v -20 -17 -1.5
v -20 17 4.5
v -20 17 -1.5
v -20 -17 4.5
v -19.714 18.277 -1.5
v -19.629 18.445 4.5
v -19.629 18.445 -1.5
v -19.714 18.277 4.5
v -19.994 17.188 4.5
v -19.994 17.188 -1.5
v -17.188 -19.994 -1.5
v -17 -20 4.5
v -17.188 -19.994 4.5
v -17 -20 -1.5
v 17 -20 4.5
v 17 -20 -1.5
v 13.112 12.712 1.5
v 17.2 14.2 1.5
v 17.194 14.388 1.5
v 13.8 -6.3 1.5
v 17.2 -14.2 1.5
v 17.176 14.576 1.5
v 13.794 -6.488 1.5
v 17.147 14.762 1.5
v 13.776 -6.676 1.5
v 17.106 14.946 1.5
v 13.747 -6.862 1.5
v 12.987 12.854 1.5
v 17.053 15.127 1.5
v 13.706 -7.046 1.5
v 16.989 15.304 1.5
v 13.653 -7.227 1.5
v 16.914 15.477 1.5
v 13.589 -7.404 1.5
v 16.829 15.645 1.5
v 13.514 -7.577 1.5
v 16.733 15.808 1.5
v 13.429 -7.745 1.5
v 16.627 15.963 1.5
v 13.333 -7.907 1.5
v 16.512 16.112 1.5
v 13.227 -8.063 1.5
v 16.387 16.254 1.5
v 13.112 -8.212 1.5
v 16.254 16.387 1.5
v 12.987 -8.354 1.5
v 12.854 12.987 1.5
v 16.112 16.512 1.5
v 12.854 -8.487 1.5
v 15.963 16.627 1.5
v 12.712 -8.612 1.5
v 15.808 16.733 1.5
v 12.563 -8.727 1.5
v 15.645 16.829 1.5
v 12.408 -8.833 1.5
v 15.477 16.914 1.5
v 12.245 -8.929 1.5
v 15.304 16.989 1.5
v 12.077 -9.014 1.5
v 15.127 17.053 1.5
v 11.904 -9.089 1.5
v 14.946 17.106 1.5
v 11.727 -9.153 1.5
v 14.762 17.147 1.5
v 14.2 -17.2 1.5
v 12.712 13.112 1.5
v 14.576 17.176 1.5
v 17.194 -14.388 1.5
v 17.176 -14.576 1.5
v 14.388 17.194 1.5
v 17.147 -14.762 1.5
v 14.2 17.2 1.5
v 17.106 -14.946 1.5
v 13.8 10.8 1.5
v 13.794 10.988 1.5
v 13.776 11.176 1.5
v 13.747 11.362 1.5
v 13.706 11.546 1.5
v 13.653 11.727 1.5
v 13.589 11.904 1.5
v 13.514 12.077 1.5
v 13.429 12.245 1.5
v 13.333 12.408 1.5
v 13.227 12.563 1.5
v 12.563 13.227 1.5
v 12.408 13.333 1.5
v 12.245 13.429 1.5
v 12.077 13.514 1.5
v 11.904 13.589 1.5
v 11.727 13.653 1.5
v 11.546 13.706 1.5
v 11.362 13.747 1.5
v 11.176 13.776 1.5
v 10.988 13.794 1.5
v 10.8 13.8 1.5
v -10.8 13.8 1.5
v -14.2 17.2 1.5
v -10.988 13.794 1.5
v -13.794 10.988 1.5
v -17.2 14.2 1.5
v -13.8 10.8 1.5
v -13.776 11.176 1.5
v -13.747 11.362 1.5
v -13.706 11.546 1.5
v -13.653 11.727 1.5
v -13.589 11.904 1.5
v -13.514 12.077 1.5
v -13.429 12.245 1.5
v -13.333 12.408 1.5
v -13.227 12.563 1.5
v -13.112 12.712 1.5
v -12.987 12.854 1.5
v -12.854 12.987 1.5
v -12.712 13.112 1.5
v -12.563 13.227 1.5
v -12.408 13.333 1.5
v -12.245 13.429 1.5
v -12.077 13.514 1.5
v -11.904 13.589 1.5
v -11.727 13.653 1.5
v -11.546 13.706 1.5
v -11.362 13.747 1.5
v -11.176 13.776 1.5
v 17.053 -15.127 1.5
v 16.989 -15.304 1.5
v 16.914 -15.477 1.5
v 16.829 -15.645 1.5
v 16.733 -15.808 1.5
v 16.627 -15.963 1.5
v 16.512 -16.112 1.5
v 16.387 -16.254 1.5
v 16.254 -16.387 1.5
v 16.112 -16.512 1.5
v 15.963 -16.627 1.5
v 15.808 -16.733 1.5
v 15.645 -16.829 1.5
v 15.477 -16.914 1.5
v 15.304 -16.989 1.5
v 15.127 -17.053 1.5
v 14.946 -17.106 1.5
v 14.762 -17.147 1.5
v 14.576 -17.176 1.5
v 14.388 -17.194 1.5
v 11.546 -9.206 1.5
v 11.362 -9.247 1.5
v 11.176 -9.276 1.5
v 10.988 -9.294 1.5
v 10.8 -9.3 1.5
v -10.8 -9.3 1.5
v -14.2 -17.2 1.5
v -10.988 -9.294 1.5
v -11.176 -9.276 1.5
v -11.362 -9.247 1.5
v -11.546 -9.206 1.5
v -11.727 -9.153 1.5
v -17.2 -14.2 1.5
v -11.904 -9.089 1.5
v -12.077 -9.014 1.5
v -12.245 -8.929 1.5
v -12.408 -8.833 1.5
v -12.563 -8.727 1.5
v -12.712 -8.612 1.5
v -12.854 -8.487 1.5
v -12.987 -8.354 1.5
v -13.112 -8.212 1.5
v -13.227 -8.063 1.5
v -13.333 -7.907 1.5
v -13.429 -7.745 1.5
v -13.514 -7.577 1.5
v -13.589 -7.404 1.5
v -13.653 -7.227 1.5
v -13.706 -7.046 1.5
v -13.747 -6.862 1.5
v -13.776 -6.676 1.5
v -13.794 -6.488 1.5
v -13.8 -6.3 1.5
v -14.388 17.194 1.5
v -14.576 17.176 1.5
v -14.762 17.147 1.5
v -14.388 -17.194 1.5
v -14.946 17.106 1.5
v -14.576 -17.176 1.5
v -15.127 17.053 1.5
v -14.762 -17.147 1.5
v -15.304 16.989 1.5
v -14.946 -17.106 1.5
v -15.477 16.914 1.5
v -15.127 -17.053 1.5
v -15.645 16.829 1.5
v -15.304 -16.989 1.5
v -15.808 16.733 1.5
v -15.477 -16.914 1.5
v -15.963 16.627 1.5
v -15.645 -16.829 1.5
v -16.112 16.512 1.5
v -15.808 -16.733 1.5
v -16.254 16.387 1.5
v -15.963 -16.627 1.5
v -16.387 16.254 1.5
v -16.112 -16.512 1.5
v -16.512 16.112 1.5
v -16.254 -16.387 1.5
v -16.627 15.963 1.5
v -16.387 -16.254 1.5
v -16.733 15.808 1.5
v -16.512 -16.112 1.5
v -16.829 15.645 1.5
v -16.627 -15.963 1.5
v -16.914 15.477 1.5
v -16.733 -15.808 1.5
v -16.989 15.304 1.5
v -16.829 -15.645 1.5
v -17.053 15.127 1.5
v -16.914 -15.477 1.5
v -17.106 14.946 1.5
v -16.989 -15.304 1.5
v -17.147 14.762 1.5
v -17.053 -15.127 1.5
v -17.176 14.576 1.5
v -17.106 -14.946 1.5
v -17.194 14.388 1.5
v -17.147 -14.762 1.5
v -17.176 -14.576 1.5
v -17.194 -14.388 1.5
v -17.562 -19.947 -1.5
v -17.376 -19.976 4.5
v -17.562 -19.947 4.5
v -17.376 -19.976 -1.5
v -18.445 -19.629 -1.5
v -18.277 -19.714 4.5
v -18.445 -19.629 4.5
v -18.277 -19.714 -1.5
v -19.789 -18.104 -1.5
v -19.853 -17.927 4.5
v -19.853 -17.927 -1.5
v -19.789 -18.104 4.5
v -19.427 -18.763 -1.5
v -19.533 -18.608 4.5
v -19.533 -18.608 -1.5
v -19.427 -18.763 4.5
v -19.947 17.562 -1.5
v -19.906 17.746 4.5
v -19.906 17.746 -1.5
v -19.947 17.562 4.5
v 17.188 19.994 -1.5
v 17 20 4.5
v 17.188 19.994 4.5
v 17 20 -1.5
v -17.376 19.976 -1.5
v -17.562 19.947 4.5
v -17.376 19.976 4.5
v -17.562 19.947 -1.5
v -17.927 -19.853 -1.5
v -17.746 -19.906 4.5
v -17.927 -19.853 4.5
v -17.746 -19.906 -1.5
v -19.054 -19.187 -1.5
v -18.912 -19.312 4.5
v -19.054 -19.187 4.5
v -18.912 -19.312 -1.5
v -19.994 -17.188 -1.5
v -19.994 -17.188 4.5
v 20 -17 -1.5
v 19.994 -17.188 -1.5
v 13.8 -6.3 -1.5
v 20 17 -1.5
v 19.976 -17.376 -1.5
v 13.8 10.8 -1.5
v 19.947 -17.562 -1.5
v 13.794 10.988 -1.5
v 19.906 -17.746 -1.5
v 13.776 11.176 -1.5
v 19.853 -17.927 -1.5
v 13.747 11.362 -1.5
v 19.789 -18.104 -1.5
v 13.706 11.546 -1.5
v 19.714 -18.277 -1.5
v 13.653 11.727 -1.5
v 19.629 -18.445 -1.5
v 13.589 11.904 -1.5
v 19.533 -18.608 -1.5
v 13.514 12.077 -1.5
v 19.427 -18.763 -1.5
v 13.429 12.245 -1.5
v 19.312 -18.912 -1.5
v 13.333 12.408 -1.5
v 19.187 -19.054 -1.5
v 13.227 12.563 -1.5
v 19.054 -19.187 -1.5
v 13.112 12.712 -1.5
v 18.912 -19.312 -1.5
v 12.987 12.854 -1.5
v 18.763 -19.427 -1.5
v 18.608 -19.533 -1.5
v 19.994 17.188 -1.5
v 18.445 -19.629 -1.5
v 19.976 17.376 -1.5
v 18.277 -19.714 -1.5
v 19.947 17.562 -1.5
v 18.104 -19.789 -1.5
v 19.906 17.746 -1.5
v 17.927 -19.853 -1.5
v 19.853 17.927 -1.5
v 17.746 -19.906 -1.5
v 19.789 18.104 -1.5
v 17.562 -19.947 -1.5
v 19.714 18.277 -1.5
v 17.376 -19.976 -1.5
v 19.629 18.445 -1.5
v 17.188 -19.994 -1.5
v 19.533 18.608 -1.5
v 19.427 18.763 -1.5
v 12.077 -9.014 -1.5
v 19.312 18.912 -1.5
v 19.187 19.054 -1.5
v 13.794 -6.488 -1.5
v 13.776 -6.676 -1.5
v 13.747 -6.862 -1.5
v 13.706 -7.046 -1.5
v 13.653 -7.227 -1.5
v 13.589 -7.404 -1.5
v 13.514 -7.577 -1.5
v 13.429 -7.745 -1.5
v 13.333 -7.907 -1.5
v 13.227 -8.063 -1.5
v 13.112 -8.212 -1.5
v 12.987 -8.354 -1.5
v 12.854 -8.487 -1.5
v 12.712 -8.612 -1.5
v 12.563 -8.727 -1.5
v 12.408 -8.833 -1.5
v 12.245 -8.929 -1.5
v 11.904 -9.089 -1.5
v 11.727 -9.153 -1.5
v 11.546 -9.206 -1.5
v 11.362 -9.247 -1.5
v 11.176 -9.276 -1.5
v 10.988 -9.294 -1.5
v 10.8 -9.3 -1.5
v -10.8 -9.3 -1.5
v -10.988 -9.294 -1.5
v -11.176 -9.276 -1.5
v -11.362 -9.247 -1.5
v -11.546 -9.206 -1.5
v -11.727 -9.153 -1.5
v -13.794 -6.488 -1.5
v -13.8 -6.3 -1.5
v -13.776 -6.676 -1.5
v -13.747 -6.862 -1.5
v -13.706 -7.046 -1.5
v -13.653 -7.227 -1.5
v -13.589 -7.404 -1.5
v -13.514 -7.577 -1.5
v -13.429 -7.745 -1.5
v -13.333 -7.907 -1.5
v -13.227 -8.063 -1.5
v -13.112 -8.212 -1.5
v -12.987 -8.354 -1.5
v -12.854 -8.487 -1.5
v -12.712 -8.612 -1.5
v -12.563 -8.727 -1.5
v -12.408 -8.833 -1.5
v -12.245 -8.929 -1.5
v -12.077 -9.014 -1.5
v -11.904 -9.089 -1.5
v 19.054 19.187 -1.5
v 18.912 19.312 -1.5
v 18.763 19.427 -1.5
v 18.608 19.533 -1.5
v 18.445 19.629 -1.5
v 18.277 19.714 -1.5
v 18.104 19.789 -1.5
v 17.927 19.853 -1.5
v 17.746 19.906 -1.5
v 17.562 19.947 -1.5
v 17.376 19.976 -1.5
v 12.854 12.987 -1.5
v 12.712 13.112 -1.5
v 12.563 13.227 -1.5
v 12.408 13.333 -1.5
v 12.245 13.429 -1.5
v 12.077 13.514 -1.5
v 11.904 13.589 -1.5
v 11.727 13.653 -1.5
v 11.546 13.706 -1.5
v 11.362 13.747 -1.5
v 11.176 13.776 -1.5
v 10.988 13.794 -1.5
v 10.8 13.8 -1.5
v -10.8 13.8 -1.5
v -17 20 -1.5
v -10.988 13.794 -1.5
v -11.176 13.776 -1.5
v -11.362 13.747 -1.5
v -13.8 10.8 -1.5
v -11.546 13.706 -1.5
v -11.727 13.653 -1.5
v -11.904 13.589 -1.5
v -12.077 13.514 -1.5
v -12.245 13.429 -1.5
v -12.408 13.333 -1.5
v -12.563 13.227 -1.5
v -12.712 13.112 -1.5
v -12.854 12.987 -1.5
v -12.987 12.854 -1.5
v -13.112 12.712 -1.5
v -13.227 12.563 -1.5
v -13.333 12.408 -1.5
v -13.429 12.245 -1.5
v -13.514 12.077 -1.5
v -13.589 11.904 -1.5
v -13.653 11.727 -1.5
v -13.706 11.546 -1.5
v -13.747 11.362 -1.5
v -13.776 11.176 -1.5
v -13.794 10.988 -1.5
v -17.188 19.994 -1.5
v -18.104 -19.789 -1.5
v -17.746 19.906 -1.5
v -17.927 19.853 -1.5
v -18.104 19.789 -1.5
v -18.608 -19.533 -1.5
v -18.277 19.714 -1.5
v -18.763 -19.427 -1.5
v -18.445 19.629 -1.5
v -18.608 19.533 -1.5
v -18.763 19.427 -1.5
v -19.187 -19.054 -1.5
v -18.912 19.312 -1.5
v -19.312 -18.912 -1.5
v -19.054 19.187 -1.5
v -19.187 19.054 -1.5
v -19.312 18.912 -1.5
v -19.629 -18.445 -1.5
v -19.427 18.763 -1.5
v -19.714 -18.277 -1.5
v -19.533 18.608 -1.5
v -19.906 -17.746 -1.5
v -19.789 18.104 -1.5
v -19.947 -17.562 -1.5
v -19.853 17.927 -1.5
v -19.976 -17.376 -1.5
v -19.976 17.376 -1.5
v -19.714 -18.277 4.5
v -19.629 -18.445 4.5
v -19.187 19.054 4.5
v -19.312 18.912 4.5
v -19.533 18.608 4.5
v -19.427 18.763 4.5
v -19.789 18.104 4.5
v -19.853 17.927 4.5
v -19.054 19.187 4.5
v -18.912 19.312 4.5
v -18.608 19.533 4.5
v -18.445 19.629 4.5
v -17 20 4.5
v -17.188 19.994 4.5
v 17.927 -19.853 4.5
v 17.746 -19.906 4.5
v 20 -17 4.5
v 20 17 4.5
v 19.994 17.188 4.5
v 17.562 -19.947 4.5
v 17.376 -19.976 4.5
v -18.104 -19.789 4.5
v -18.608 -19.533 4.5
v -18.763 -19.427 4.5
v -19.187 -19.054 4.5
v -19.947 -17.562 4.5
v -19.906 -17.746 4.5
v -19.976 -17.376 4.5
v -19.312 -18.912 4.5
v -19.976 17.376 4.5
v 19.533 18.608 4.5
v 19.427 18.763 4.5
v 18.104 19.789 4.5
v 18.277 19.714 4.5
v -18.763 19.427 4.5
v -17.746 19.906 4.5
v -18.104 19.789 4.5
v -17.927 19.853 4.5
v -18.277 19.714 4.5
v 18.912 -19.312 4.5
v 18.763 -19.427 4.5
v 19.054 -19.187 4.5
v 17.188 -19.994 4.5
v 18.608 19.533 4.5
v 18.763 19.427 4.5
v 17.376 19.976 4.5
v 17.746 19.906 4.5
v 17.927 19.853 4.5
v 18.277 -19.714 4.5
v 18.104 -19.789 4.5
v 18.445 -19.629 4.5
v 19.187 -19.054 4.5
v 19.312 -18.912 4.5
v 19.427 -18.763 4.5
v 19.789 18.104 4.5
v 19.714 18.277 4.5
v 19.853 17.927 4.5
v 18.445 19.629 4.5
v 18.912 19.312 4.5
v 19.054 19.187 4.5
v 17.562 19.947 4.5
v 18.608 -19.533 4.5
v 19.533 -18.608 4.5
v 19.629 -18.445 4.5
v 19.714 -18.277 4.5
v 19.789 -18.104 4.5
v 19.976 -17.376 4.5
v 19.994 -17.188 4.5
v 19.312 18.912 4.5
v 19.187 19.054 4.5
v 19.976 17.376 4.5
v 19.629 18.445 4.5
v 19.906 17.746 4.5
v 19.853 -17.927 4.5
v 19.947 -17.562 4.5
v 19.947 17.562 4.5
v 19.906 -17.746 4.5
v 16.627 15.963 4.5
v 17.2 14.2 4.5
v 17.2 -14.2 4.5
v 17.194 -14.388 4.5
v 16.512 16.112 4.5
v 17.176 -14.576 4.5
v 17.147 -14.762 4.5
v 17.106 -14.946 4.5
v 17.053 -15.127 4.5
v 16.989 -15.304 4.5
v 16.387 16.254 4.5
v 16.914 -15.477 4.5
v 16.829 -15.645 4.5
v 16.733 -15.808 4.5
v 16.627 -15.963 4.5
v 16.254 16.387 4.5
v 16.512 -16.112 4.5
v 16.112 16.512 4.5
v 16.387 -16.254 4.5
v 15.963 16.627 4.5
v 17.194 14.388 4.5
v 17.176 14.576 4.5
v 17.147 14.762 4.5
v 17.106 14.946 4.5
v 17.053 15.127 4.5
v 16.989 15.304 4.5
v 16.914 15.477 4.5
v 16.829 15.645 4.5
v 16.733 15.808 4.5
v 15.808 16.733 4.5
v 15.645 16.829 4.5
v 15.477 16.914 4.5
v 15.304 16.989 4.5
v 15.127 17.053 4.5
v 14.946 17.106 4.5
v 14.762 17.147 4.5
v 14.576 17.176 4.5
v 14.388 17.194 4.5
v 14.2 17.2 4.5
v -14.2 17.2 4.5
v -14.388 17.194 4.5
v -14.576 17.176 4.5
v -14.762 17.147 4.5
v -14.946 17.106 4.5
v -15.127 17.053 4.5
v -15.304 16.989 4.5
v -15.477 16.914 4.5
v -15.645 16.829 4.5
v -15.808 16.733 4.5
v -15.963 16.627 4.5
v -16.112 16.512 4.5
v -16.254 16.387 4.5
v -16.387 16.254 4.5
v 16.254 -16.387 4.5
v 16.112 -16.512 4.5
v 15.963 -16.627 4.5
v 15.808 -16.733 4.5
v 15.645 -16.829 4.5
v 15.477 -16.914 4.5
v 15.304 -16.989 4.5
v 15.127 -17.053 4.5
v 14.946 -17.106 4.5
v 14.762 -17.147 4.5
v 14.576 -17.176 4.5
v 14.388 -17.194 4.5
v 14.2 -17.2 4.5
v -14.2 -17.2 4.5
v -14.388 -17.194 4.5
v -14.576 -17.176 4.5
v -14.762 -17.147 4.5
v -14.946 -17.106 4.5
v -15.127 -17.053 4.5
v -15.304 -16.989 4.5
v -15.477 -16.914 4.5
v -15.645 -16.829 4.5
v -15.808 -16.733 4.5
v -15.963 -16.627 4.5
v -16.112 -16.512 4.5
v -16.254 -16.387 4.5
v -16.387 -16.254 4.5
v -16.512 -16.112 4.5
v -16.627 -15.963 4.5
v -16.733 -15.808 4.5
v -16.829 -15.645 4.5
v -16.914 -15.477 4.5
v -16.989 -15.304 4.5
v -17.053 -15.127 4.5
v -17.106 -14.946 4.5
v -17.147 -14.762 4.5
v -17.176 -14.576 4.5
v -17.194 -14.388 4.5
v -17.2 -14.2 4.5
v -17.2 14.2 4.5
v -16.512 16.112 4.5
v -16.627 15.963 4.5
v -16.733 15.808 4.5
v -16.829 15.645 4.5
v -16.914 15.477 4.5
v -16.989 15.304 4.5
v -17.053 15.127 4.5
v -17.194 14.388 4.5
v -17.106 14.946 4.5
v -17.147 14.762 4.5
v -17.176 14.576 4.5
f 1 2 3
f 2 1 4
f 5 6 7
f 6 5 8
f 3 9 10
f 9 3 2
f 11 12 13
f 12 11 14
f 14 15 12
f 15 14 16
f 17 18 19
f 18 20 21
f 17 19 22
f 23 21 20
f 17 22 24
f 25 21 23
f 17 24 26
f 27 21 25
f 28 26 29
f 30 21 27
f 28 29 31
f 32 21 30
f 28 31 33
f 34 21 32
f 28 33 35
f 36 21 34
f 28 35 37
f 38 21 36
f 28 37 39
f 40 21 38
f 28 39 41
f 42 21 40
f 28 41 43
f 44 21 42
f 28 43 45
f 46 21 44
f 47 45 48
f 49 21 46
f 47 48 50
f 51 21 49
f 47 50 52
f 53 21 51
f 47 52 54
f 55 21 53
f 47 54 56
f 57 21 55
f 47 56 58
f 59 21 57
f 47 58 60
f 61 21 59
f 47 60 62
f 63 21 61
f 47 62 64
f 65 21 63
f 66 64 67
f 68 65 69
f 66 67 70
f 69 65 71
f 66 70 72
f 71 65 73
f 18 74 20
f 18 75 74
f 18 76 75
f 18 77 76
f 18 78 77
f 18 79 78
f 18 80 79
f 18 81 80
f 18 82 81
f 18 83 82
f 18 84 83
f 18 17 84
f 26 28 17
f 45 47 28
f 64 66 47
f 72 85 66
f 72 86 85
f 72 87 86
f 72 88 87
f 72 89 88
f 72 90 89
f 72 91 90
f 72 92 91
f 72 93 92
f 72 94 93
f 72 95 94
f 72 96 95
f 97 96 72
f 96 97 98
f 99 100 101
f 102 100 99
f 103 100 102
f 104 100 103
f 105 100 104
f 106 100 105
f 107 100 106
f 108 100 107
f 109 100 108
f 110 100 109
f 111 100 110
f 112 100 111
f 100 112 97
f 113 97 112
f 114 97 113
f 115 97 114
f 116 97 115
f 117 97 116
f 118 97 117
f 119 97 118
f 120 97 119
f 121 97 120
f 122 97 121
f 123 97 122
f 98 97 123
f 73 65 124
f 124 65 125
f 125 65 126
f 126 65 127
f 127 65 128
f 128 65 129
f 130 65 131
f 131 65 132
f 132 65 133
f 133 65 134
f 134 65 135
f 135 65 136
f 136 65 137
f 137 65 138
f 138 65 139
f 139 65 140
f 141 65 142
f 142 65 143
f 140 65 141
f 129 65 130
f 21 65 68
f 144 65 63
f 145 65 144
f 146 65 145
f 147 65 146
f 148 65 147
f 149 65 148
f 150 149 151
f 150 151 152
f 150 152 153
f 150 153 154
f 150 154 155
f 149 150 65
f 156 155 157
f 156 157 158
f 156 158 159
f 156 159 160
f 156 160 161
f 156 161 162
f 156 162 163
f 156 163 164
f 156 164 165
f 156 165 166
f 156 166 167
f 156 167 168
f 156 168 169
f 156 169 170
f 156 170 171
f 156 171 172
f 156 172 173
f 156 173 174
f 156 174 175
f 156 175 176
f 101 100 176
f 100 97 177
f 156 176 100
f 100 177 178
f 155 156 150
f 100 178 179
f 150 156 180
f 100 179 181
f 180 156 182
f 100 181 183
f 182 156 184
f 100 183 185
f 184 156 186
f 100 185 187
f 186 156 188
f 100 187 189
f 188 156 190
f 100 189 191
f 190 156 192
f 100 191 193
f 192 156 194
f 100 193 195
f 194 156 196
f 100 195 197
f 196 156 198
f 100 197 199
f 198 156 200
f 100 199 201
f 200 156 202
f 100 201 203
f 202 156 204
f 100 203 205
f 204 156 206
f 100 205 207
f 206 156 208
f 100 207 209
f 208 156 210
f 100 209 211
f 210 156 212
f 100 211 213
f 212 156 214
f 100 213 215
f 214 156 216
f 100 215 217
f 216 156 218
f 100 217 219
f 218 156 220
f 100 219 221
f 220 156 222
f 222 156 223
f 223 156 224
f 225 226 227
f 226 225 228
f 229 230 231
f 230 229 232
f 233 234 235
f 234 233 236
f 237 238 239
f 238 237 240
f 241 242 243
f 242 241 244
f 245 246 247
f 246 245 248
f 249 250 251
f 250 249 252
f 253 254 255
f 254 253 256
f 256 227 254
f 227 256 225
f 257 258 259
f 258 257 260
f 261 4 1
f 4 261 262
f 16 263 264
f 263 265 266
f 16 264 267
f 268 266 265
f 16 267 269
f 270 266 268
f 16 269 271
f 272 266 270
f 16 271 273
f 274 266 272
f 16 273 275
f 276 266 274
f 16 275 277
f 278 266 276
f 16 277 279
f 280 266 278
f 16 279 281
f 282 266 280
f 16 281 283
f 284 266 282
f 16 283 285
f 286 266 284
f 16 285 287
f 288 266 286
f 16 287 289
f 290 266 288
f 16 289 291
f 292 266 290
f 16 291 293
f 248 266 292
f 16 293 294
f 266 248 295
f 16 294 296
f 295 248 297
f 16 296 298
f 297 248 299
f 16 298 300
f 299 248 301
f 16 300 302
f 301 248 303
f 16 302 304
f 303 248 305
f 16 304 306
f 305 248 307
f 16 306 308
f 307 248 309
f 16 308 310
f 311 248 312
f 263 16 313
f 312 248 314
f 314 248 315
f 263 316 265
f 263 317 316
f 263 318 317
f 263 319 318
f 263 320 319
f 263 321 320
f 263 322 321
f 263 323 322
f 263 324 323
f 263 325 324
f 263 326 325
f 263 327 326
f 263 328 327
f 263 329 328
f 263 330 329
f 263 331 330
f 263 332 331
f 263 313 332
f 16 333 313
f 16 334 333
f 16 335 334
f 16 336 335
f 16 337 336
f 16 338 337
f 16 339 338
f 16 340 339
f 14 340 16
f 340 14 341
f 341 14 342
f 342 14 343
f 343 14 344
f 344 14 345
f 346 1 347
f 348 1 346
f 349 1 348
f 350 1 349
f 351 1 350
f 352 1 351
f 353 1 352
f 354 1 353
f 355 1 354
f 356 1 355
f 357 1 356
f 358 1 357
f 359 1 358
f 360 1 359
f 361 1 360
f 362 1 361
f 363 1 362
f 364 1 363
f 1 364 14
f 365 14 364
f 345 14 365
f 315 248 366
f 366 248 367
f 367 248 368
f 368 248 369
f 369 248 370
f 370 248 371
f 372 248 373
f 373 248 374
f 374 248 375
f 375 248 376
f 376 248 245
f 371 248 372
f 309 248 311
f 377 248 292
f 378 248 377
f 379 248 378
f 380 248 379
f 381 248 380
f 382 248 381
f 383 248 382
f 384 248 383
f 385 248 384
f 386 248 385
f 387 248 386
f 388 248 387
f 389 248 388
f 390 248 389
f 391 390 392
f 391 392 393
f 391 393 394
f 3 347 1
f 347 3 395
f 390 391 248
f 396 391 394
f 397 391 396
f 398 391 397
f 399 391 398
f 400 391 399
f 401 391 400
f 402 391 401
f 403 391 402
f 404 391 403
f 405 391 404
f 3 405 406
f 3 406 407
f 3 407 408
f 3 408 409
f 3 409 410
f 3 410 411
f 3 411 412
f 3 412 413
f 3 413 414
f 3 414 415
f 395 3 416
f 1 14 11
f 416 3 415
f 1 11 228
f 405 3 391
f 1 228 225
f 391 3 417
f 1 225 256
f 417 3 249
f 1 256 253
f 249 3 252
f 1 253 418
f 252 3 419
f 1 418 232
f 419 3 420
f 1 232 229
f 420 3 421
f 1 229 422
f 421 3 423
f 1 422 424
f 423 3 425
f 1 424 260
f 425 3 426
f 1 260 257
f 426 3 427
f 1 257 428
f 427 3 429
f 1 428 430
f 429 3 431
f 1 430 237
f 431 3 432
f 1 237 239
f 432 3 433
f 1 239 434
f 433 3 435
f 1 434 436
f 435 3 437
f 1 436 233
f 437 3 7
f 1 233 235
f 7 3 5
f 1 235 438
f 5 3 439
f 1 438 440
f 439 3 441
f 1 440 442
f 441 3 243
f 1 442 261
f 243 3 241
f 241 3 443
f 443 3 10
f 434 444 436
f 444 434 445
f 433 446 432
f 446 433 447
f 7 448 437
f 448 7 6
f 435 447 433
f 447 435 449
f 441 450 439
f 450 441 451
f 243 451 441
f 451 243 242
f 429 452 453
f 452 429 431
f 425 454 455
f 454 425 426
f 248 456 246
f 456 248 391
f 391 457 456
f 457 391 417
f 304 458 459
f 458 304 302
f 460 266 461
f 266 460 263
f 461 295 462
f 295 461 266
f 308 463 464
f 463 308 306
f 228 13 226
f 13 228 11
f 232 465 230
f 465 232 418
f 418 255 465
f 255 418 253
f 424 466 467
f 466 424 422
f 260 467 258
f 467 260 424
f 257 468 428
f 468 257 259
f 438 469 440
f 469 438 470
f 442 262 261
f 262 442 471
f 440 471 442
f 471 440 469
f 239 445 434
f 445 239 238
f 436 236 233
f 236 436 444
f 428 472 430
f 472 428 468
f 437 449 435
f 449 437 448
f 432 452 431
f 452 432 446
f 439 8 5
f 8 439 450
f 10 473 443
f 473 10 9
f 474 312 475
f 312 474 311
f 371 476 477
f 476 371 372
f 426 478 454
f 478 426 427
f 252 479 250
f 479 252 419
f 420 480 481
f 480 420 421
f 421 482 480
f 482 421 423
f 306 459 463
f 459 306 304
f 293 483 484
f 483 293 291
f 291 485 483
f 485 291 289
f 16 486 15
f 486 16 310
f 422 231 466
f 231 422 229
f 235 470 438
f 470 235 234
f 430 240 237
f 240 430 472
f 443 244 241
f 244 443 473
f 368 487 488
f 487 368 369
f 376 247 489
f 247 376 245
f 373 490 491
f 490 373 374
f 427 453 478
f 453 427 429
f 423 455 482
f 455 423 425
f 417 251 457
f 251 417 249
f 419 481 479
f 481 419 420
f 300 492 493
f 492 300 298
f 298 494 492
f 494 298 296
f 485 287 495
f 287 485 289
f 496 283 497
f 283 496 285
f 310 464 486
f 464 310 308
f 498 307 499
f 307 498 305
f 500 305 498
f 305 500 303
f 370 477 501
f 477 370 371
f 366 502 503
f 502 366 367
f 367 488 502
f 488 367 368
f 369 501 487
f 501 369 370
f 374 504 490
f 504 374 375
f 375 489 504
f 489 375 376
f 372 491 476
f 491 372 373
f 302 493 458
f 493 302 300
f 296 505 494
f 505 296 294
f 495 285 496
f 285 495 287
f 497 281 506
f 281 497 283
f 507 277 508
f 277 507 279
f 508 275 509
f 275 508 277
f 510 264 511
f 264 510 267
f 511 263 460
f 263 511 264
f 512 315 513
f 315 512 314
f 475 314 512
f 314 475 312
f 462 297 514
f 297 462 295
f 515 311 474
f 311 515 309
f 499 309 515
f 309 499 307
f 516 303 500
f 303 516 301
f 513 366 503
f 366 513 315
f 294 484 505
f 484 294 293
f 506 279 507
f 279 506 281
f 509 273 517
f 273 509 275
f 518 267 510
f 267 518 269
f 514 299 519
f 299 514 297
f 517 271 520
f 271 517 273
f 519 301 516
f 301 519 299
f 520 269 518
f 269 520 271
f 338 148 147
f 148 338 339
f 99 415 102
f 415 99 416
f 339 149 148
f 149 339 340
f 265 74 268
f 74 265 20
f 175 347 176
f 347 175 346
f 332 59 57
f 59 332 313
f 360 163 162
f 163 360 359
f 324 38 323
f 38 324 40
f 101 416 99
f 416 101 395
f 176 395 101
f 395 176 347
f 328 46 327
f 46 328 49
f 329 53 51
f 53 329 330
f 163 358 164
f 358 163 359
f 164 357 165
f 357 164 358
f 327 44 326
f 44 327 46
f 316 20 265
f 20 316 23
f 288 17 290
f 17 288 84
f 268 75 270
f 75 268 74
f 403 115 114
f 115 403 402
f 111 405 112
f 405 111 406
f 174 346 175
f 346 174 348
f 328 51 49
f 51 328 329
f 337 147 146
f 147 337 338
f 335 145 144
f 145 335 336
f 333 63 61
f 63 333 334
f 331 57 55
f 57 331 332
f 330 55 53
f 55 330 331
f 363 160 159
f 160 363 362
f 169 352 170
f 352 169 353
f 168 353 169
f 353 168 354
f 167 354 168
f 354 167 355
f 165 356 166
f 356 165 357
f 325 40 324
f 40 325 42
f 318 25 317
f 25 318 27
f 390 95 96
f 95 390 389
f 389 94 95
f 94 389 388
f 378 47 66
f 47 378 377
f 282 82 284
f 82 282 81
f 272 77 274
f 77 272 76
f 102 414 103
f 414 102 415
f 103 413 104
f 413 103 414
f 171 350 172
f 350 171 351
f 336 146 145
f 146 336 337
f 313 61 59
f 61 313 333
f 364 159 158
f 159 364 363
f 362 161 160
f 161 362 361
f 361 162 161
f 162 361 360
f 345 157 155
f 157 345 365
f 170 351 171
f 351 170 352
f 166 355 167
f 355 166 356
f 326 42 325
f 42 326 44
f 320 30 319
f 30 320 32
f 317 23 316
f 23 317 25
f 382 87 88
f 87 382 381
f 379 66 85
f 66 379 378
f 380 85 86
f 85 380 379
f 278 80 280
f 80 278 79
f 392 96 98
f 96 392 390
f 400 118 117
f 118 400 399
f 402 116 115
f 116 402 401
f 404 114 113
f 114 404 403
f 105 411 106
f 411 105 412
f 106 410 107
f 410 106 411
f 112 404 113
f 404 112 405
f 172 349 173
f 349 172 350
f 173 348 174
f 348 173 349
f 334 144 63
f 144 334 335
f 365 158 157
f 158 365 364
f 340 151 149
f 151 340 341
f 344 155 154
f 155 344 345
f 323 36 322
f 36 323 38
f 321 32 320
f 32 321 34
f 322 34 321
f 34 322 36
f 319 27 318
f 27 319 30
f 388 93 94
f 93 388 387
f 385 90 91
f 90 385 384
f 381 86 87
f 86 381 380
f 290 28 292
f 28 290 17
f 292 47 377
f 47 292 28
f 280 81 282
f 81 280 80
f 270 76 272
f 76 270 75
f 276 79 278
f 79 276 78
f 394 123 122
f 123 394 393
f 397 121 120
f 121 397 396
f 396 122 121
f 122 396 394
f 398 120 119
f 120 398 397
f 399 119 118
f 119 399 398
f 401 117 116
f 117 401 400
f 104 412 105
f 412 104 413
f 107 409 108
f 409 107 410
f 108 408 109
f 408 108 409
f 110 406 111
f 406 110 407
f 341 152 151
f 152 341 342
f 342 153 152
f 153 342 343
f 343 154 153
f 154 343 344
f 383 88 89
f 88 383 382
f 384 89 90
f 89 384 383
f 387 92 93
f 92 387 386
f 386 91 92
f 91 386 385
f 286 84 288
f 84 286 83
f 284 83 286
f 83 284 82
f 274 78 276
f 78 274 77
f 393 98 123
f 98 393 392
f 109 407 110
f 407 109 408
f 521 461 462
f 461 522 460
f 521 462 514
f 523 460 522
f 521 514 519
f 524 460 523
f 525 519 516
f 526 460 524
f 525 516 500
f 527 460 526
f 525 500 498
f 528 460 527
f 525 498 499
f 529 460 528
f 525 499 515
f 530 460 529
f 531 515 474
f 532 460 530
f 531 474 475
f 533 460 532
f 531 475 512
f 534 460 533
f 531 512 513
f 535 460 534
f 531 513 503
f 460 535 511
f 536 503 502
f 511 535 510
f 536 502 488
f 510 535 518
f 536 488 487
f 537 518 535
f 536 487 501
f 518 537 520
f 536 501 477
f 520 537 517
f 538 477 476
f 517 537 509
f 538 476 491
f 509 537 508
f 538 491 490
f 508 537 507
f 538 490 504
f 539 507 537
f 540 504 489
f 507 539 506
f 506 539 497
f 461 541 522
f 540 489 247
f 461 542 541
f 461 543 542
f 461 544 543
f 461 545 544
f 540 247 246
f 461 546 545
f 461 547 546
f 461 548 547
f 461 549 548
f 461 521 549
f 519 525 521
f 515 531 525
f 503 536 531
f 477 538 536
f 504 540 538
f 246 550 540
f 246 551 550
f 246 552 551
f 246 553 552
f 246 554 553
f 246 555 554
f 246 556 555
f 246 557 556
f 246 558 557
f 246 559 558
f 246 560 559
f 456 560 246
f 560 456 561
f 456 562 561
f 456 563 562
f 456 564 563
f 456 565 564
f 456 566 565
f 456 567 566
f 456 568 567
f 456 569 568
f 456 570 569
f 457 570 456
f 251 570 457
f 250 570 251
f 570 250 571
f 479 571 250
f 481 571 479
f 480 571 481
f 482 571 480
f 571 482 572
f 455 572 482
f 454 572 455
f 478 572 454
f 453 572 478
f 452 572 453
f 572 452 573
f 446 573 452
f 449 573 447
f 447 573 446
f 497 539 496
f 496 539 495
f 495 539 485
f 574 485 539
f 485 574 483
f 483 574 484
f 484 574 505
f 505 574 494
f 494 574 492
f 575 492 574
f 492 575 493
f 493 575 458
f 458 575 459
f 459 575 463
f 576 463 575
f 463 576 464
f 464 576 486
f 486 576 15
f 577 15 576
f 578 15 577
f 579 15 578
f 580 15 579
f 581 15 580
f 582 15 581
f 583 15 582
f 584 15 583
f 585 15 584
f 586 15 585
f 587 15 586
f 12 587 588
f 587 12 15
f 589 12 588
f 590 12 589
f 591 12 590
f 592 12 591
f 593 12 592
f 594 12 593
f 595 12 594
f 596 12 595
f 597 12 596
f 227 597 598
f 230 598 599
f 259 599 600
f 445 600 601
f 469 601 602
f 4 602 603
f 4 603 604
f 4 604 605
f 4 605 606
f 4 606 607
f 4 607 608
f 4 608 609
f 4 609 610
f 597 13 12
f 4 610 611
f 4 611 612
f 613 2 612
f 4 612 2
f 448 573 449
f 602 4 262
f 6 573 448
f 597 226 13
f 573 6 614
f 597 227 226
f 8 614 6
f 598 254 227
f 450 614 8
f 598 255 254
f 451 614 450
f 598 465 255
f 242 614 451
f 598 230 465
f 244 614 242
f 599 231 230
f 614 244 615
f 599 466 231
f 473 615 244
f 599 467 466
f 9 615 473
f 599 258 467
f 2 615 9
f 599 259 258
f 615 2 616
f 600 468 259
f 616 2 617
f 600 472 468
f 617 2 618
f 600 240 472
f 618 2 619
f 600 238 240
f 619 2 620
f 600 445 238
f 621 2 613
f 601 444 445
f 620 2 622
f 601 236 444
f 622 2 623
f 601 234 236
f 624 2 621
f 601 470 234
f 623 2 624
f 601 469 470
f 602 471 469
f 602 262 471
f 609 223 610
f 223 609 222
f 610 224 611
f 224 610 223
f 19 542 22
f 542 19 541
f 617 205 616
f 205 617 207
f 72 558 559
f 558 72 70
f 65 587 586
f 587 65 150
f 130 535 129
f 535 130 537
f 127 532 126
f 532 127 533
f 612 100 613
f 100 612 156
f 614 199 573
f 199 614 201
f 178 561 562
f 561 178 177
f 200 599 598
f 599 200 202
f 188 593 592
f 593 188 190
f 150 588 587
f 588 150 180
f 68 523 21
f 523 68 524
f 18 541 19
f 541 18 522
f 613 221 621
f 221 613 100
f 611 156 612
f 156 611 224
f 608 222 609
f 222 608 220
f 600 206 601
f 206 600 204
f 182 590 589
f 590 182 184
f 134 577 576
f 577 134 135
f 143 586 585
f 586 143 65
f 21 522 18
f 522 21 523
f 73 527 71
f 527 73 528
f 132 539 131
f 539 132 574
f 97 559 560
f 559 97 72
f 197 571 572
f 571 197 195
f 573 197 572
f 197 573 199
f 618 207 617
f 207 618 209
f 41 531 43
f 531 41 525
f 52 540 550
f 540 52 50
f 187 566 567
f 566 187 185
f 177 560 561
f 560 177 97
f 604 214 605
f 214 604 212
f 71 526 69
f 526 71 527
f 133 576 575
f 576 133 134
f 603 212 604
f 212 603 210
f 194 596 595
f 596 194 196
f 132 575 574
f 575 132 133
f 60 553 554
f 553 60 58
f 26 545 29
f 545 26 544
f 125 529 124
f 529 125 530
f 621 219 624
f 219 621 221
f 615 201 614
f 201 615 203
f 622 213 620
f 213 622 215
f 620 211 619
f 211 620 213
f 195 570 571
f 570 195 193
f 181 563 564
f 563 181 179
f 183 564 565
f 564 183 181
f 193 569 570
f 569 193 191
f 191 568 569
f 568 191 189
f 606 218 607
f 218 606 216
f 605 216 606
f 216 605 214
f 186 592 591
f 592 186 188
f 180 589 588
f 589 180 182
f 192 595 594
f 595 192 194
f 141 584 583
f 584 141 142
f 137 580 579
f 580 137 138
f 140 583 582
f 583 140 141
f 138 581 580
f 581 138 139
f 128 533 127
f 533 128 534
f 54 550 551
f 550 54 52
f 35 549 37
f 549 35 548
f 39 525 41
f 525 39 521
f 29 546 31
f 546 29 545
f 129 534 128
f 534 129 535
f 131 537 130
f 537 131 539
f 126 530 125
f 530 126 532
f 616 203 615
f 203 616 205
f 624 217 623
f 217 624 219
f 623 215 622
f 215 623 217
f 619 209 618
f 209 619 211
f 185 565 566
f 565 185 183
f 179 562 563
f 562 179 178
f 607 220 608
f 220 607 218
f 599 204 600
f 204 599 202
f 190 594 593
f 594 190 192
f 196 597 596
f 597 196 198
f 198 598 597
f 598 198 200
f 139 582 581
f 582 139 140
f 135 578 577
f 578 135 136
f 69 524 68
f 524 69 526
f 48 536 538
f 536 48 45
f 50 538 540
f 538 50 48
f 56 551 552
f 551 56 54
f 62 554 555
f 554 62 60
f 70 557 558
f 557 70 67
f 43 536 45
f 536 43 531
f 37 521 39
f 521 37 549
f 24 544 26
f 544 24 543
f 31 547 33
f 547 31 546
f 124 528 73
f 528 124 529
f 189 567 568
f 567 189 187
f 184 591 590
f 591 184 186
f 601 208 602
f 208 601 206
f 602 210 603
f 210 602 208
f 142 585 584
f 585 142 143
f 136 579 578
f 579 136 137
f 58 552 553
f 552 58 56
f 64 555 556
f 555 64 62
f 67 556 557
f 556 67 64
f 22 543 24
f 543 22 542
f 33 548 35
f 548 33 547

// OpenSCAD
// render settings
fn  = 100;     // sides to render on cylinder
cut = 0.001;   // exact cutouts do not render

// Makes a cube shape with rounded corners in the z-direction
// dim[x,y,z] - vector containing outer dimensions of the cube
// rad        - radius of the rounded corners 
module RoundCorners(dim, rad) {
    // create adjusted dimensions for corners
    adjDim = [dim[0] - rad * 2, dim[1] - rad * 2, dim[2]];

    hull() {
        // place cylinders at each corner
        for (x = [1, -1])
            for (y = [1, -1])
                translate([x * adjDim[0] / 2,   y * adjDim[1] / 2, 0])
                    cylinder(h = adjDim[2], r = rad, center = true, $fn = fn);

        // place main body
        cube(adjDim, center = true);
    }
}

// clearances
clear = 0.2;    // clearance from load cell to wall

// load cell measured dimensions
loadCellX = 34;  // length and width of load cell
loadBaseH = 2.5; // thickness of load cell base
loadBaseX = 3;   // width of load cell base
loadBaseB = 7.5; // width of load cell base at the strain gauge

// wall thickness
wall = 3;        // wall thickness

roundR = 3;      // radius of rounded corners

// derived dimensions
base    = [loadCellX + wall * 2, loadCellX + wall * 2, wall];
baseCut = [loadCellX - (loadBaseX + clear) * 2, 
           loadCellX - loadBaseX - loadBaseB - clear * 2, 
           wall + cut];
wallCut = [loadCellX + clear * 2, 
           loadCellX + clear * 2, 
           base[2] + cut];

union() {
    // base with cutout for load cell to deflect
    difference() {
        RoundCorners(base, roundR);
        translate([0, (loadBaseB - loadBaseX) / 2, 0])
            RoundCorners(baseCut, roundR);
    }

    // walls to hold load cell
    difference() {
        translate([0, 0, wall])
            RoundCorners(base, roundR);
        translate([0, 0, wall])
            RoundCorners(wallCut, roundR);
    }
}
